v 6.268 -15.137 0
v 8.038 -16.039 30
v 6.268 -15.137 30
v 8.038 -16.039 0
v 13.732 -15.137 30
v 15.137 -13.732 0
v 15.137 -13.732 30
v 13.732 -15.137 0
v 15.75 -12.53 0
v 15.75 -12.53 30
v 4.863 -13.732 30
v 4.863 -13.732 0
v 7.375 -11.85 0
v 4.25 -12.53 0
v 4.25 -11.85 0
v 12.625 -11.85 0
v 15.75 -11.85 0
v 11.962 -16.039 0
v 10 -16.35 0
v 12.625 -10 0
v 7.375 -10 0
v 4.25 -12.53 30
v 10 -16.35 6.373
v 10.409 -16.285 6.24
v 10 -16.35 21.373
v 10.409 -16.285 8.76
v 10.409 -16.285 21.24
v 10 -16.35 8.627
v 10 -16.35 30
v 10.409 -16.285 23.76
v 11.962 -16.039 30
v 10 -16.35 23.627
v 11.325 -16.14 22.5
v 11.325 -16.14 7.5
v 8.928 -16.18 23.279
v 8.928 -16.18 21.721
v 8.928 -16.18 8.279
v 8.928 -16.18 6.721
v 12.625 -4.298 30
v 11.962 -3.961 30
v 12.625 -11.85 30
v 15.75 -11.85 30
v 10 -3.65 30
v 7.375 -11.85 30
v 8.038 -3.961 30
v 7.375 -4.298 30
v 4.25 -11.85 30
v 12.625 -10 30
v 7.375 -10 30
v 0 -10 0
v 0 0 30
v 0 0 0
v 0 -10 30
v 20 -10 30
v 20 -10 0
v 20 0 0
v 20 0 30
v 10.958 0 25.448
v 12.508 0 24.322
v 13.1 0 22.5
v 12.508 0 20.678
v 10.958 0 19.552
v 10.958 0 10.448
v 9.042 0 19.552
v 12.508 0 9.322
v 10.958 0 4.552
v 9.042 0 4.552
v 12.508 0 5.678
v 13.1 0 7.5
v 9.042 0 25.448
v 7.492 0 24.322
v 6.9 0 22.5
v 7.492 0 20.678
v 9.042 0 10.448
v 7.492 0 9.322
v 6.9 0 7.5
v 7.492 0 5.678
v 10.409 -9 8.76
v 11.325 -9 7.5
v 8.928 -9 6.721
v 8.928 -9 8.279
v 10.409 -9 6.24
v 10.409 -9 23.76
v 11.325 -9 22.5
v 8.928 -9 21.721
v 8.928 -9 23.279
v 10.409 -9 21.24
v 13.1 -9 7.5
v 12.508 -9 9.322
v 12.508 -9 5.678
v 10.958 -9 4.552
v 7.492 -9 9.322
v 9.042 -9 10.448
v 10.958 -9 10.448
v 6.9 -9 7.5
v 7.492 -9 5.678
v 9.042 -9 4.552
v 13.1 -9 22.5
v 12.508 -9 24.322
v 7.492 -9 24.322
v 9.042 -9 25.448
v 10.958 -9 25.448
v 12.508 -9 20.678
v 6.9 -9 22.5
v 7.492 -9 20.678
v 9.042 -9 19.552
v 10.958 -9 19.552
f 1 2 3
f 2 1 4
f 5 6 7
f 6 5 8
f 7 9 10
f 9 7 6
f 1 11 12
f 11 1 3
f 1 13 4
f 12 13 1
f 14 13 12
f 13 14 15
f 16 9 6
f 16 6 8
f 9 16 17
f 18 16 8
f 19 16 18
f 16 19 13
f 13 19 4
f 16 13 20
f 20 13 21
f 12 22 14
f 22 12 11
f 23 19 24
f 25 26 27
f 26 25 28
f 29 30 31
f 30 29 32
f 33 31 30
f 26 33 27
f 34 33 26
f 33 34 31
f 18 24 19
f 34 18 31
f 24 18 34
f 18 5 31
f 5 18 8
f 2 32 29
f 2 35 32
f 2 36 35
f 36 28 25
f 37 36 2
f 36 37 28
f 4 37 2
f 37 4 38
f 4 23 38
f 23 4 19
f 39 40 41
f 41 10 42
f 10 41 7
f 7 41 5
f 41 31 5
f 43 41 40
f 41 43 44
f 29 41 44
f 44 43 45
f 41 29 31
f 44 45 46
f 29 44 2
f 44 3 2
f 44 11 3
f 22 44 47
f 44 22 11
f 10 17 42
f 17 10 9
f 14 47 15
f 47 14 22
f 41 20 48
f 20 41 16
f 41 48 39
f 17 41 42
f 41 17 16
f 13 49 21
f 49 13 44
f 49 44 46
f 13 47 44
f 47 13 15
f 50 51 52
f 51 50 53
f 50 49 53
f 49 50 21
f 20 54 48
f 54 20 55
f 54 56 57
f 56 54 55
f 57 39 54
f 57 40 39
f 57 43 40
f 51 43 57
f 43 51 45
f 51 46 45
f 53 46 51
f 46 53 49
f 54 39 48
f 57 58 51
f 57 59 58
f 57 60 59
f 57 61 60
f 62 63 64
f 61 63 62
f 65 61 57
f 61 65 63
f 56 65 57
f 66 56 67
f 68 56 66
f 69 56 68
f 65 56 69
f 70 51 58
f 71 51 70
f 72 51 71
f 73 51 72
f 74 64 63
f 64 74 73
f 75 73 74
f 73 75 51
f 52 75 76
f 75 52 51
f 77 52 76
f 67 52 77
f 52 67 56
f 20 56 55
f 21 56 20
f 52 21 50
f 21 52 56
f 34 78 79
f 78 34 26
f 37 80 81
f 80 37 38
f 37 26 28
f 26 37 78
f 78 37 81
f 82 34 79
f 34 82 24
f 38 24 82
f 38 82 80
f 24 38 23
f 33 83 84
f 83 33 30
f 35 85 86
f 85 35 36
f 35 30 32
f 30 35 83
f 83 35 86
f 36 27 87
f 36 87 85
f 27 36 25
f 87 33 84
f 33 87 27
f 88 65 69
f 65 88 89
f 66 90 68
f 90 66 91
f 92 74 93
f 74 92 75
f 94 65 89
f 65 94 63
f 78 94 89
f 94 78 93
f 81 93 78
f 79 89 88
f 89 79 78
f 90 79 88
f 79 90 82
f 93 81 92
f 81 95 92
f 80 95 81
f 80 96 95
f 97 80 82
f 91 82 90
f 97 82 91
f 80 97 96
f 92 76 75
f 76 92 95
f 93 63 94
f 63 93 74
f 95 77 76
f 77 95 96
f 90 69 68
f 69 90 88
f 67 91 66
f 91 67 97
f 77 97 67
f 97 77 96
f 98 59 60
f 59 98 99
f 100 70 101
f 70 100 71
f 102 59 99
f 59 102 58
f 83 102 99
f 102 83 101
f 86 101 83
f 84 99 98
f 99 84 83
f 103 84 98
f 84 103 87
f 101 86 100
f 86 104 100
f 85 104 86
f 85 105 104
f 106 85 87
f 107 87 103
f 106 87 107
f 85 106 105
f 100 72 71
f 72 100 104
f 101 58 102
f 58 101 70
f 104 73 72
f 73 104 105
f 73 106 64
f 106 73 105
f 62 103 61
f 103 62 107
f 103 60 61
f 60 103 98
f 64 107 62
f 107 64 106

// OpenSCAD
/**
 * aluExtrLeg.scad
 * 20x20 perfil aluminio tipo I
 * 
 * Created by Diego Viejo 
 * 25/Feb/2015
 * 
 */

legWidth = 20;
legLength = 30;
legHeight = 10;

rotate([90, 0, 0])
difference()
{
    union()
    {
        cube([legWidth, legLength, legHeight]);
        translate([legWidth/2, 0, legHeight]) seta();
    }
    
    //bolt holes
    translate([legWidth/2, legLength/4, -1]) cylinder(d=2.65, h=20);
    translate([legWidth/2, legLength*3/4, -1]) cylinder(d=2.65, h=20);
    translate([legWidth/2, legLength/4, -1]) cylinder(d=6.2, h=legHeight);
    translate([legWidth/2, legLength*3/4, -1]) cylinder(d=6.2, h=legHeight);
}


module seta()
rotate([-90, 0, 0]) difference()
{
    cylinder(r=6.35, h=legLength);

    
    translate([5.75, -15/2, -1]) cube([5, 15, legLength+2]);
    translate([-5-5.75, -15/2, -1]) cube([5, 15, legLength+2]);
    
    translate([5.25/2, -1.85, -1]) cube([5, 10, legLength+2]);
    translate([-5-5.25/2, -1.85, -1]) cube([5, 10, legLength+2]);

}
    
